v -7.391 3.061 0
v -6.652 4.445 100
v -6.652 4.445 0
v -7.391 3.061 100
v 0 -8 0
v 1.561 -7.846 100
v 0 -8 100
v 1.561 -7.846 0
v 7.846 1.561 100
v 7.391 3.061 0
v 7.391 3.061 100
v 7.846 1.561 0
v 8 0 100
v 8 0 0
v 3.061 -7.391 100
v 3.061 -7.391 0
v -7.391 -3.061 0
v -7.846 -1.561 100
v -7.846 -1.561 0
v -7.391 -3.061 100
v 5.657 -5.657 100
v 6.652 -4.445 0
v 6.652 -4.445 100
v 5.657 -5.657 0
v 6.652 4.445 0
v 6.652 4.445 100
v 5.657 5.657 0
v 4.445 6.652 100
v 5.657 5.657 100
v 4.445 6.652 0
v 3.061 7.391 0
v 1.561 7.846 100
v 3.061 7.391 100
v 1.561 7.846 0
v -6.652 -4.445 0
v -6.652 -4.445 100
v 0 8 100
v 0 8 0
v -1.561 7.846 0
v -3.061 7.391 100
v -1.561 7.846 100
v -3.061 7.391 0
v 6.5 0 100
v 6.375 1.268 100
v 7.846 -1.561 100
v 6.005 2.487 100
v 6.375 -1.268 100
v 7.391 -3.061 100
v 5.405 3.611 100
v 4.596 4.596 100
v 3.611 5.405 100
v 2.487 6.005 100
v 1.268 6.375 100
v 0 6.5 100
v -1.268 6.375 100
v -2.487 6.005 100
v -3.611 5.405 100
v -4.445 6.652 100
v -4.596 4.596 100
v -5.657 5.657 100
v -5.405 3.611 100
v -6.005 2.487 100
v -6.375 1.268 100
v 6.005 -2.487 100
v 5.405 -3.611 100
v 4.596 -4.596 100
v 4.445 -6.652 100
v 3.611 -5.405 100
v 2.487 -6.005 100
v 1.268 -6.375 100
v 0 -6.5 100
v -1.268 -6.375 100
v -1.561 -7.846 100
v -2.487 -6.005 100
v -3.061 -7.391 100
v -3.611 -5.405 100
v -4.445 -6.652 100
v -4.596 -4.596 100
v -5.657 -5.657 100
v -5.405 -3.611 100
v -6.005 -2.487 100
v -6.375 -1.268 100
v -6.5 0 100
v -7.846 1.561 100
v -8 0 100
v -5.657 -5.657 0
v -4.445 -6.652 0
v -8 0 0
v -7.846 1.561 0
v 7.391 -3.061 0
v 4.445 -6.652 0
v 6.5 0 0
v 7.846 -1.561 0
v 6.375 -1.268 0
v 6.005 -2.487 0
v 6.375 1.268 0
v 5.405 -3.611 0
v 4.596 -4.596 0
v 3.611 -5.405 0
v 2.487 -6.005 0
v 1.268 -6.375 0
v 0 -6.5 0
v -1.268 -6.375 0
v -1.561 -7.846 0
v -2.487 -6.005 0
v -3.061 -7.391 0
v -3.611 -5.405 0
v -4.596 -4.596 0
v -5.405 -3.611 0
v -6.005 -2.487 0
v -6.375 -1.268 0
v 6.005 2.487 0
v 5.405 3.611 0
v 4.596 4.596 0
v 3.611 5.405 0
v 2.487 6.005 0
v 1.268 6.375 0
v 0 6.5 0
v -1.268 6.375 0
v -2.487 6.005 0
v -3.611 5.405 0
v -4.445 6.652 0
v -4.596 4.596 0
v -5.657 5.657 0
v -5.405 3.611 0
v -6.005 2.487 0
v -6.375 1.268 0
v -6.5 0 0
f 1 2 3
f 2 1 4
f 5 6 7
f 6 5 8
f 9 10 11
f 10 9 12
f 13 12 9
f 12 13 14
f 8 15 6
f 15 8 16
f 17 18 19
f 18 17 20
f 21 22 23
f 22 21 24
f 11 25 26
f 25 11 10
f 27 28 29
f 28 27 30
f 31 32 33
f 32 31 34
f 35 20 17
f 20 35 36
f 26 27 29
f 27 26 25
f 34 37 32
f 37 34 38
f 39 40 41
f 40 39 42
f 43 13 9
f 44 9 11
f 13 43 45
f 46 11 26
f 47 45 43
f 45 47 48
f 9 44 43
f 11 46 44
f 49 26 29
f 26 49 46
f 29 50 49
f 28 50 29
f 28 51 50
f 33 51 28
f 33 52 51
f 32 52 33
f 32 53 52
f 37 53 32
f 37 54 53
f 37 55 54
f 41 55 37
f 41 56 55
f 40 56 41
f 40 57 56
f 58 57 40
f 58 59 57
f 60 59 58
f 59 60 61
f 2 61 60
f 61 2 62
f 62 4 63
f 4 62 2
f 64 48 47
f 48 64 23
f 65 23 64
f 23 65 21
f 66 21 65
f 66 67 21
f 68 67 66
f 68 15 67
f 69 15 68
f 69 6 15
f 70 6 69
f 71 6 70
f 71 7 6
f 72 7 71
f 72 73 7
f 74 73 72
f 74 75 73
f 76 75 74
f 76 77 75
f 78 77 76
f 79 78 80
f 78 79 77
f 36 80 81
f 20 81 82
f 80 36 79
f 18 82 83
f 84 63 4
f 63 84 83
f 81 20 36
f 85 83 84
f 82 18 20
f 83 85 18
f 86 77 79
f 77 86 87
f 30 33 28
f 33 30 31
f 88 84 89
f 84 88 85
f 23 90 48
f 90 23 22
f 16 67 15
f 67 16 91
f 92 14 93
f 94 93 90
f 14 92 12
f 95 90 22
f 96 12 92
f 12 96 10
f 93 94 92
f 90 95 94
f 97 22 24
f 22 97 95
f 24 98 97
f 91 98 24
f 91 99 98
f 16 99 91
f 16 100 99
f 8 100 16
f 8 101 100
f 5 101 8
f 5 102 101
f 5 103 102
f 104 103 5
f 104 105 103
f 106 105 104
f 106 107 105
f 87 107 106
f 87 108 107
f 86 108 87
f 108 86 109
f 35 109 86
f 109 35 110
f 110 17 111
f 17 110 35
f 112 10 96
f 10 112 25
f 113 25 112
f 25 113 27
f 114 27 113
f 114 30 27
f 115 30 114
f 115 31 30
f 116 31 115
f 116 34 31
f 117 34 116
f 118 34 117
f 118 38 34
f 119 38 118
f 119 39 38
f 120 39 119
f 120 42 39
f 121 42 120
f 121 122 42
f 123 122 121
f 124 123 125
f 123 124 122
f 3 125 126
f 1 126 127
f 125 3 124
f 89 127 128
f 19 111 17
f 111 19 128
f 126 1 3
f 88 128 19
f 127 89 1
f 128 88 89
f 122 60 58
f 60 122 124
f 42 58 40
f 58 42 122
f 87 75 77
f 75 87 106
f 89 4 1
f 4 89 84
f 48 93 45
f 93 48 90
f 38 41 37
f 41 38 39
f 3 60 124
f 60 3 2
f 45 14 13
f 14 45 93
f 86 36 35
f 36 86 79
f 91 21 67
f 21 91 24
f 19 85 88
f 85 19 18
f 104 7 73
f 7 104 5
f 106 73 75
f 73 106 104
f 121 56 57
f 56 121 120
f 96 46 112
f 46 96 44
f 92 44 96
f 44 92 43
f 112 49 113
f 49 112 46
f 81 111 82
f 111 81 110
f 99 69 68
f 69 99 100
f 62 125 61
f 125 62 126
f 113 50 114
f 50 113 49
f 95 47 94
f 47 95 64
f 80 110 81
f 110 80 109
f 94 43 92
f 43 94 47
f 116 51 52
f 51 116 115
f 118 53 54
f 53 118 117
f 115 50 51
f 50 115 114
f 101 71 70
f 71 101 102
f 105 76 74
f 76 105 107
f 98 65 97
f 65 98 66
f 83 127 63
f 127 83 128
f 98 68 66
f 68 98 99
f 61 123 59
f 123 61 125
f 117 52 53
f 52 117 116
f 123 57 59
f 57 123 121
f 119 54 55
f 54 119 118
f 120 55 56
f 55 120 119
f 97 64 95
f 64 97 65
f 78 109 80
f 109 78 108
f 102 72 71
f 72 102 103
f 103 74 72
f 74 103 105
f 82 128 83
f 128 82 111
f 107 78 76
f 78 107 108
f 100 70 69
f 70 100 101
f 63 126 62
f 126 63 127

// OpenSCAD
$fn = 32;

difference() {
    cylinder(h = 100, r = 8);
    cylinder(h = 100, r = 6.5);
}
